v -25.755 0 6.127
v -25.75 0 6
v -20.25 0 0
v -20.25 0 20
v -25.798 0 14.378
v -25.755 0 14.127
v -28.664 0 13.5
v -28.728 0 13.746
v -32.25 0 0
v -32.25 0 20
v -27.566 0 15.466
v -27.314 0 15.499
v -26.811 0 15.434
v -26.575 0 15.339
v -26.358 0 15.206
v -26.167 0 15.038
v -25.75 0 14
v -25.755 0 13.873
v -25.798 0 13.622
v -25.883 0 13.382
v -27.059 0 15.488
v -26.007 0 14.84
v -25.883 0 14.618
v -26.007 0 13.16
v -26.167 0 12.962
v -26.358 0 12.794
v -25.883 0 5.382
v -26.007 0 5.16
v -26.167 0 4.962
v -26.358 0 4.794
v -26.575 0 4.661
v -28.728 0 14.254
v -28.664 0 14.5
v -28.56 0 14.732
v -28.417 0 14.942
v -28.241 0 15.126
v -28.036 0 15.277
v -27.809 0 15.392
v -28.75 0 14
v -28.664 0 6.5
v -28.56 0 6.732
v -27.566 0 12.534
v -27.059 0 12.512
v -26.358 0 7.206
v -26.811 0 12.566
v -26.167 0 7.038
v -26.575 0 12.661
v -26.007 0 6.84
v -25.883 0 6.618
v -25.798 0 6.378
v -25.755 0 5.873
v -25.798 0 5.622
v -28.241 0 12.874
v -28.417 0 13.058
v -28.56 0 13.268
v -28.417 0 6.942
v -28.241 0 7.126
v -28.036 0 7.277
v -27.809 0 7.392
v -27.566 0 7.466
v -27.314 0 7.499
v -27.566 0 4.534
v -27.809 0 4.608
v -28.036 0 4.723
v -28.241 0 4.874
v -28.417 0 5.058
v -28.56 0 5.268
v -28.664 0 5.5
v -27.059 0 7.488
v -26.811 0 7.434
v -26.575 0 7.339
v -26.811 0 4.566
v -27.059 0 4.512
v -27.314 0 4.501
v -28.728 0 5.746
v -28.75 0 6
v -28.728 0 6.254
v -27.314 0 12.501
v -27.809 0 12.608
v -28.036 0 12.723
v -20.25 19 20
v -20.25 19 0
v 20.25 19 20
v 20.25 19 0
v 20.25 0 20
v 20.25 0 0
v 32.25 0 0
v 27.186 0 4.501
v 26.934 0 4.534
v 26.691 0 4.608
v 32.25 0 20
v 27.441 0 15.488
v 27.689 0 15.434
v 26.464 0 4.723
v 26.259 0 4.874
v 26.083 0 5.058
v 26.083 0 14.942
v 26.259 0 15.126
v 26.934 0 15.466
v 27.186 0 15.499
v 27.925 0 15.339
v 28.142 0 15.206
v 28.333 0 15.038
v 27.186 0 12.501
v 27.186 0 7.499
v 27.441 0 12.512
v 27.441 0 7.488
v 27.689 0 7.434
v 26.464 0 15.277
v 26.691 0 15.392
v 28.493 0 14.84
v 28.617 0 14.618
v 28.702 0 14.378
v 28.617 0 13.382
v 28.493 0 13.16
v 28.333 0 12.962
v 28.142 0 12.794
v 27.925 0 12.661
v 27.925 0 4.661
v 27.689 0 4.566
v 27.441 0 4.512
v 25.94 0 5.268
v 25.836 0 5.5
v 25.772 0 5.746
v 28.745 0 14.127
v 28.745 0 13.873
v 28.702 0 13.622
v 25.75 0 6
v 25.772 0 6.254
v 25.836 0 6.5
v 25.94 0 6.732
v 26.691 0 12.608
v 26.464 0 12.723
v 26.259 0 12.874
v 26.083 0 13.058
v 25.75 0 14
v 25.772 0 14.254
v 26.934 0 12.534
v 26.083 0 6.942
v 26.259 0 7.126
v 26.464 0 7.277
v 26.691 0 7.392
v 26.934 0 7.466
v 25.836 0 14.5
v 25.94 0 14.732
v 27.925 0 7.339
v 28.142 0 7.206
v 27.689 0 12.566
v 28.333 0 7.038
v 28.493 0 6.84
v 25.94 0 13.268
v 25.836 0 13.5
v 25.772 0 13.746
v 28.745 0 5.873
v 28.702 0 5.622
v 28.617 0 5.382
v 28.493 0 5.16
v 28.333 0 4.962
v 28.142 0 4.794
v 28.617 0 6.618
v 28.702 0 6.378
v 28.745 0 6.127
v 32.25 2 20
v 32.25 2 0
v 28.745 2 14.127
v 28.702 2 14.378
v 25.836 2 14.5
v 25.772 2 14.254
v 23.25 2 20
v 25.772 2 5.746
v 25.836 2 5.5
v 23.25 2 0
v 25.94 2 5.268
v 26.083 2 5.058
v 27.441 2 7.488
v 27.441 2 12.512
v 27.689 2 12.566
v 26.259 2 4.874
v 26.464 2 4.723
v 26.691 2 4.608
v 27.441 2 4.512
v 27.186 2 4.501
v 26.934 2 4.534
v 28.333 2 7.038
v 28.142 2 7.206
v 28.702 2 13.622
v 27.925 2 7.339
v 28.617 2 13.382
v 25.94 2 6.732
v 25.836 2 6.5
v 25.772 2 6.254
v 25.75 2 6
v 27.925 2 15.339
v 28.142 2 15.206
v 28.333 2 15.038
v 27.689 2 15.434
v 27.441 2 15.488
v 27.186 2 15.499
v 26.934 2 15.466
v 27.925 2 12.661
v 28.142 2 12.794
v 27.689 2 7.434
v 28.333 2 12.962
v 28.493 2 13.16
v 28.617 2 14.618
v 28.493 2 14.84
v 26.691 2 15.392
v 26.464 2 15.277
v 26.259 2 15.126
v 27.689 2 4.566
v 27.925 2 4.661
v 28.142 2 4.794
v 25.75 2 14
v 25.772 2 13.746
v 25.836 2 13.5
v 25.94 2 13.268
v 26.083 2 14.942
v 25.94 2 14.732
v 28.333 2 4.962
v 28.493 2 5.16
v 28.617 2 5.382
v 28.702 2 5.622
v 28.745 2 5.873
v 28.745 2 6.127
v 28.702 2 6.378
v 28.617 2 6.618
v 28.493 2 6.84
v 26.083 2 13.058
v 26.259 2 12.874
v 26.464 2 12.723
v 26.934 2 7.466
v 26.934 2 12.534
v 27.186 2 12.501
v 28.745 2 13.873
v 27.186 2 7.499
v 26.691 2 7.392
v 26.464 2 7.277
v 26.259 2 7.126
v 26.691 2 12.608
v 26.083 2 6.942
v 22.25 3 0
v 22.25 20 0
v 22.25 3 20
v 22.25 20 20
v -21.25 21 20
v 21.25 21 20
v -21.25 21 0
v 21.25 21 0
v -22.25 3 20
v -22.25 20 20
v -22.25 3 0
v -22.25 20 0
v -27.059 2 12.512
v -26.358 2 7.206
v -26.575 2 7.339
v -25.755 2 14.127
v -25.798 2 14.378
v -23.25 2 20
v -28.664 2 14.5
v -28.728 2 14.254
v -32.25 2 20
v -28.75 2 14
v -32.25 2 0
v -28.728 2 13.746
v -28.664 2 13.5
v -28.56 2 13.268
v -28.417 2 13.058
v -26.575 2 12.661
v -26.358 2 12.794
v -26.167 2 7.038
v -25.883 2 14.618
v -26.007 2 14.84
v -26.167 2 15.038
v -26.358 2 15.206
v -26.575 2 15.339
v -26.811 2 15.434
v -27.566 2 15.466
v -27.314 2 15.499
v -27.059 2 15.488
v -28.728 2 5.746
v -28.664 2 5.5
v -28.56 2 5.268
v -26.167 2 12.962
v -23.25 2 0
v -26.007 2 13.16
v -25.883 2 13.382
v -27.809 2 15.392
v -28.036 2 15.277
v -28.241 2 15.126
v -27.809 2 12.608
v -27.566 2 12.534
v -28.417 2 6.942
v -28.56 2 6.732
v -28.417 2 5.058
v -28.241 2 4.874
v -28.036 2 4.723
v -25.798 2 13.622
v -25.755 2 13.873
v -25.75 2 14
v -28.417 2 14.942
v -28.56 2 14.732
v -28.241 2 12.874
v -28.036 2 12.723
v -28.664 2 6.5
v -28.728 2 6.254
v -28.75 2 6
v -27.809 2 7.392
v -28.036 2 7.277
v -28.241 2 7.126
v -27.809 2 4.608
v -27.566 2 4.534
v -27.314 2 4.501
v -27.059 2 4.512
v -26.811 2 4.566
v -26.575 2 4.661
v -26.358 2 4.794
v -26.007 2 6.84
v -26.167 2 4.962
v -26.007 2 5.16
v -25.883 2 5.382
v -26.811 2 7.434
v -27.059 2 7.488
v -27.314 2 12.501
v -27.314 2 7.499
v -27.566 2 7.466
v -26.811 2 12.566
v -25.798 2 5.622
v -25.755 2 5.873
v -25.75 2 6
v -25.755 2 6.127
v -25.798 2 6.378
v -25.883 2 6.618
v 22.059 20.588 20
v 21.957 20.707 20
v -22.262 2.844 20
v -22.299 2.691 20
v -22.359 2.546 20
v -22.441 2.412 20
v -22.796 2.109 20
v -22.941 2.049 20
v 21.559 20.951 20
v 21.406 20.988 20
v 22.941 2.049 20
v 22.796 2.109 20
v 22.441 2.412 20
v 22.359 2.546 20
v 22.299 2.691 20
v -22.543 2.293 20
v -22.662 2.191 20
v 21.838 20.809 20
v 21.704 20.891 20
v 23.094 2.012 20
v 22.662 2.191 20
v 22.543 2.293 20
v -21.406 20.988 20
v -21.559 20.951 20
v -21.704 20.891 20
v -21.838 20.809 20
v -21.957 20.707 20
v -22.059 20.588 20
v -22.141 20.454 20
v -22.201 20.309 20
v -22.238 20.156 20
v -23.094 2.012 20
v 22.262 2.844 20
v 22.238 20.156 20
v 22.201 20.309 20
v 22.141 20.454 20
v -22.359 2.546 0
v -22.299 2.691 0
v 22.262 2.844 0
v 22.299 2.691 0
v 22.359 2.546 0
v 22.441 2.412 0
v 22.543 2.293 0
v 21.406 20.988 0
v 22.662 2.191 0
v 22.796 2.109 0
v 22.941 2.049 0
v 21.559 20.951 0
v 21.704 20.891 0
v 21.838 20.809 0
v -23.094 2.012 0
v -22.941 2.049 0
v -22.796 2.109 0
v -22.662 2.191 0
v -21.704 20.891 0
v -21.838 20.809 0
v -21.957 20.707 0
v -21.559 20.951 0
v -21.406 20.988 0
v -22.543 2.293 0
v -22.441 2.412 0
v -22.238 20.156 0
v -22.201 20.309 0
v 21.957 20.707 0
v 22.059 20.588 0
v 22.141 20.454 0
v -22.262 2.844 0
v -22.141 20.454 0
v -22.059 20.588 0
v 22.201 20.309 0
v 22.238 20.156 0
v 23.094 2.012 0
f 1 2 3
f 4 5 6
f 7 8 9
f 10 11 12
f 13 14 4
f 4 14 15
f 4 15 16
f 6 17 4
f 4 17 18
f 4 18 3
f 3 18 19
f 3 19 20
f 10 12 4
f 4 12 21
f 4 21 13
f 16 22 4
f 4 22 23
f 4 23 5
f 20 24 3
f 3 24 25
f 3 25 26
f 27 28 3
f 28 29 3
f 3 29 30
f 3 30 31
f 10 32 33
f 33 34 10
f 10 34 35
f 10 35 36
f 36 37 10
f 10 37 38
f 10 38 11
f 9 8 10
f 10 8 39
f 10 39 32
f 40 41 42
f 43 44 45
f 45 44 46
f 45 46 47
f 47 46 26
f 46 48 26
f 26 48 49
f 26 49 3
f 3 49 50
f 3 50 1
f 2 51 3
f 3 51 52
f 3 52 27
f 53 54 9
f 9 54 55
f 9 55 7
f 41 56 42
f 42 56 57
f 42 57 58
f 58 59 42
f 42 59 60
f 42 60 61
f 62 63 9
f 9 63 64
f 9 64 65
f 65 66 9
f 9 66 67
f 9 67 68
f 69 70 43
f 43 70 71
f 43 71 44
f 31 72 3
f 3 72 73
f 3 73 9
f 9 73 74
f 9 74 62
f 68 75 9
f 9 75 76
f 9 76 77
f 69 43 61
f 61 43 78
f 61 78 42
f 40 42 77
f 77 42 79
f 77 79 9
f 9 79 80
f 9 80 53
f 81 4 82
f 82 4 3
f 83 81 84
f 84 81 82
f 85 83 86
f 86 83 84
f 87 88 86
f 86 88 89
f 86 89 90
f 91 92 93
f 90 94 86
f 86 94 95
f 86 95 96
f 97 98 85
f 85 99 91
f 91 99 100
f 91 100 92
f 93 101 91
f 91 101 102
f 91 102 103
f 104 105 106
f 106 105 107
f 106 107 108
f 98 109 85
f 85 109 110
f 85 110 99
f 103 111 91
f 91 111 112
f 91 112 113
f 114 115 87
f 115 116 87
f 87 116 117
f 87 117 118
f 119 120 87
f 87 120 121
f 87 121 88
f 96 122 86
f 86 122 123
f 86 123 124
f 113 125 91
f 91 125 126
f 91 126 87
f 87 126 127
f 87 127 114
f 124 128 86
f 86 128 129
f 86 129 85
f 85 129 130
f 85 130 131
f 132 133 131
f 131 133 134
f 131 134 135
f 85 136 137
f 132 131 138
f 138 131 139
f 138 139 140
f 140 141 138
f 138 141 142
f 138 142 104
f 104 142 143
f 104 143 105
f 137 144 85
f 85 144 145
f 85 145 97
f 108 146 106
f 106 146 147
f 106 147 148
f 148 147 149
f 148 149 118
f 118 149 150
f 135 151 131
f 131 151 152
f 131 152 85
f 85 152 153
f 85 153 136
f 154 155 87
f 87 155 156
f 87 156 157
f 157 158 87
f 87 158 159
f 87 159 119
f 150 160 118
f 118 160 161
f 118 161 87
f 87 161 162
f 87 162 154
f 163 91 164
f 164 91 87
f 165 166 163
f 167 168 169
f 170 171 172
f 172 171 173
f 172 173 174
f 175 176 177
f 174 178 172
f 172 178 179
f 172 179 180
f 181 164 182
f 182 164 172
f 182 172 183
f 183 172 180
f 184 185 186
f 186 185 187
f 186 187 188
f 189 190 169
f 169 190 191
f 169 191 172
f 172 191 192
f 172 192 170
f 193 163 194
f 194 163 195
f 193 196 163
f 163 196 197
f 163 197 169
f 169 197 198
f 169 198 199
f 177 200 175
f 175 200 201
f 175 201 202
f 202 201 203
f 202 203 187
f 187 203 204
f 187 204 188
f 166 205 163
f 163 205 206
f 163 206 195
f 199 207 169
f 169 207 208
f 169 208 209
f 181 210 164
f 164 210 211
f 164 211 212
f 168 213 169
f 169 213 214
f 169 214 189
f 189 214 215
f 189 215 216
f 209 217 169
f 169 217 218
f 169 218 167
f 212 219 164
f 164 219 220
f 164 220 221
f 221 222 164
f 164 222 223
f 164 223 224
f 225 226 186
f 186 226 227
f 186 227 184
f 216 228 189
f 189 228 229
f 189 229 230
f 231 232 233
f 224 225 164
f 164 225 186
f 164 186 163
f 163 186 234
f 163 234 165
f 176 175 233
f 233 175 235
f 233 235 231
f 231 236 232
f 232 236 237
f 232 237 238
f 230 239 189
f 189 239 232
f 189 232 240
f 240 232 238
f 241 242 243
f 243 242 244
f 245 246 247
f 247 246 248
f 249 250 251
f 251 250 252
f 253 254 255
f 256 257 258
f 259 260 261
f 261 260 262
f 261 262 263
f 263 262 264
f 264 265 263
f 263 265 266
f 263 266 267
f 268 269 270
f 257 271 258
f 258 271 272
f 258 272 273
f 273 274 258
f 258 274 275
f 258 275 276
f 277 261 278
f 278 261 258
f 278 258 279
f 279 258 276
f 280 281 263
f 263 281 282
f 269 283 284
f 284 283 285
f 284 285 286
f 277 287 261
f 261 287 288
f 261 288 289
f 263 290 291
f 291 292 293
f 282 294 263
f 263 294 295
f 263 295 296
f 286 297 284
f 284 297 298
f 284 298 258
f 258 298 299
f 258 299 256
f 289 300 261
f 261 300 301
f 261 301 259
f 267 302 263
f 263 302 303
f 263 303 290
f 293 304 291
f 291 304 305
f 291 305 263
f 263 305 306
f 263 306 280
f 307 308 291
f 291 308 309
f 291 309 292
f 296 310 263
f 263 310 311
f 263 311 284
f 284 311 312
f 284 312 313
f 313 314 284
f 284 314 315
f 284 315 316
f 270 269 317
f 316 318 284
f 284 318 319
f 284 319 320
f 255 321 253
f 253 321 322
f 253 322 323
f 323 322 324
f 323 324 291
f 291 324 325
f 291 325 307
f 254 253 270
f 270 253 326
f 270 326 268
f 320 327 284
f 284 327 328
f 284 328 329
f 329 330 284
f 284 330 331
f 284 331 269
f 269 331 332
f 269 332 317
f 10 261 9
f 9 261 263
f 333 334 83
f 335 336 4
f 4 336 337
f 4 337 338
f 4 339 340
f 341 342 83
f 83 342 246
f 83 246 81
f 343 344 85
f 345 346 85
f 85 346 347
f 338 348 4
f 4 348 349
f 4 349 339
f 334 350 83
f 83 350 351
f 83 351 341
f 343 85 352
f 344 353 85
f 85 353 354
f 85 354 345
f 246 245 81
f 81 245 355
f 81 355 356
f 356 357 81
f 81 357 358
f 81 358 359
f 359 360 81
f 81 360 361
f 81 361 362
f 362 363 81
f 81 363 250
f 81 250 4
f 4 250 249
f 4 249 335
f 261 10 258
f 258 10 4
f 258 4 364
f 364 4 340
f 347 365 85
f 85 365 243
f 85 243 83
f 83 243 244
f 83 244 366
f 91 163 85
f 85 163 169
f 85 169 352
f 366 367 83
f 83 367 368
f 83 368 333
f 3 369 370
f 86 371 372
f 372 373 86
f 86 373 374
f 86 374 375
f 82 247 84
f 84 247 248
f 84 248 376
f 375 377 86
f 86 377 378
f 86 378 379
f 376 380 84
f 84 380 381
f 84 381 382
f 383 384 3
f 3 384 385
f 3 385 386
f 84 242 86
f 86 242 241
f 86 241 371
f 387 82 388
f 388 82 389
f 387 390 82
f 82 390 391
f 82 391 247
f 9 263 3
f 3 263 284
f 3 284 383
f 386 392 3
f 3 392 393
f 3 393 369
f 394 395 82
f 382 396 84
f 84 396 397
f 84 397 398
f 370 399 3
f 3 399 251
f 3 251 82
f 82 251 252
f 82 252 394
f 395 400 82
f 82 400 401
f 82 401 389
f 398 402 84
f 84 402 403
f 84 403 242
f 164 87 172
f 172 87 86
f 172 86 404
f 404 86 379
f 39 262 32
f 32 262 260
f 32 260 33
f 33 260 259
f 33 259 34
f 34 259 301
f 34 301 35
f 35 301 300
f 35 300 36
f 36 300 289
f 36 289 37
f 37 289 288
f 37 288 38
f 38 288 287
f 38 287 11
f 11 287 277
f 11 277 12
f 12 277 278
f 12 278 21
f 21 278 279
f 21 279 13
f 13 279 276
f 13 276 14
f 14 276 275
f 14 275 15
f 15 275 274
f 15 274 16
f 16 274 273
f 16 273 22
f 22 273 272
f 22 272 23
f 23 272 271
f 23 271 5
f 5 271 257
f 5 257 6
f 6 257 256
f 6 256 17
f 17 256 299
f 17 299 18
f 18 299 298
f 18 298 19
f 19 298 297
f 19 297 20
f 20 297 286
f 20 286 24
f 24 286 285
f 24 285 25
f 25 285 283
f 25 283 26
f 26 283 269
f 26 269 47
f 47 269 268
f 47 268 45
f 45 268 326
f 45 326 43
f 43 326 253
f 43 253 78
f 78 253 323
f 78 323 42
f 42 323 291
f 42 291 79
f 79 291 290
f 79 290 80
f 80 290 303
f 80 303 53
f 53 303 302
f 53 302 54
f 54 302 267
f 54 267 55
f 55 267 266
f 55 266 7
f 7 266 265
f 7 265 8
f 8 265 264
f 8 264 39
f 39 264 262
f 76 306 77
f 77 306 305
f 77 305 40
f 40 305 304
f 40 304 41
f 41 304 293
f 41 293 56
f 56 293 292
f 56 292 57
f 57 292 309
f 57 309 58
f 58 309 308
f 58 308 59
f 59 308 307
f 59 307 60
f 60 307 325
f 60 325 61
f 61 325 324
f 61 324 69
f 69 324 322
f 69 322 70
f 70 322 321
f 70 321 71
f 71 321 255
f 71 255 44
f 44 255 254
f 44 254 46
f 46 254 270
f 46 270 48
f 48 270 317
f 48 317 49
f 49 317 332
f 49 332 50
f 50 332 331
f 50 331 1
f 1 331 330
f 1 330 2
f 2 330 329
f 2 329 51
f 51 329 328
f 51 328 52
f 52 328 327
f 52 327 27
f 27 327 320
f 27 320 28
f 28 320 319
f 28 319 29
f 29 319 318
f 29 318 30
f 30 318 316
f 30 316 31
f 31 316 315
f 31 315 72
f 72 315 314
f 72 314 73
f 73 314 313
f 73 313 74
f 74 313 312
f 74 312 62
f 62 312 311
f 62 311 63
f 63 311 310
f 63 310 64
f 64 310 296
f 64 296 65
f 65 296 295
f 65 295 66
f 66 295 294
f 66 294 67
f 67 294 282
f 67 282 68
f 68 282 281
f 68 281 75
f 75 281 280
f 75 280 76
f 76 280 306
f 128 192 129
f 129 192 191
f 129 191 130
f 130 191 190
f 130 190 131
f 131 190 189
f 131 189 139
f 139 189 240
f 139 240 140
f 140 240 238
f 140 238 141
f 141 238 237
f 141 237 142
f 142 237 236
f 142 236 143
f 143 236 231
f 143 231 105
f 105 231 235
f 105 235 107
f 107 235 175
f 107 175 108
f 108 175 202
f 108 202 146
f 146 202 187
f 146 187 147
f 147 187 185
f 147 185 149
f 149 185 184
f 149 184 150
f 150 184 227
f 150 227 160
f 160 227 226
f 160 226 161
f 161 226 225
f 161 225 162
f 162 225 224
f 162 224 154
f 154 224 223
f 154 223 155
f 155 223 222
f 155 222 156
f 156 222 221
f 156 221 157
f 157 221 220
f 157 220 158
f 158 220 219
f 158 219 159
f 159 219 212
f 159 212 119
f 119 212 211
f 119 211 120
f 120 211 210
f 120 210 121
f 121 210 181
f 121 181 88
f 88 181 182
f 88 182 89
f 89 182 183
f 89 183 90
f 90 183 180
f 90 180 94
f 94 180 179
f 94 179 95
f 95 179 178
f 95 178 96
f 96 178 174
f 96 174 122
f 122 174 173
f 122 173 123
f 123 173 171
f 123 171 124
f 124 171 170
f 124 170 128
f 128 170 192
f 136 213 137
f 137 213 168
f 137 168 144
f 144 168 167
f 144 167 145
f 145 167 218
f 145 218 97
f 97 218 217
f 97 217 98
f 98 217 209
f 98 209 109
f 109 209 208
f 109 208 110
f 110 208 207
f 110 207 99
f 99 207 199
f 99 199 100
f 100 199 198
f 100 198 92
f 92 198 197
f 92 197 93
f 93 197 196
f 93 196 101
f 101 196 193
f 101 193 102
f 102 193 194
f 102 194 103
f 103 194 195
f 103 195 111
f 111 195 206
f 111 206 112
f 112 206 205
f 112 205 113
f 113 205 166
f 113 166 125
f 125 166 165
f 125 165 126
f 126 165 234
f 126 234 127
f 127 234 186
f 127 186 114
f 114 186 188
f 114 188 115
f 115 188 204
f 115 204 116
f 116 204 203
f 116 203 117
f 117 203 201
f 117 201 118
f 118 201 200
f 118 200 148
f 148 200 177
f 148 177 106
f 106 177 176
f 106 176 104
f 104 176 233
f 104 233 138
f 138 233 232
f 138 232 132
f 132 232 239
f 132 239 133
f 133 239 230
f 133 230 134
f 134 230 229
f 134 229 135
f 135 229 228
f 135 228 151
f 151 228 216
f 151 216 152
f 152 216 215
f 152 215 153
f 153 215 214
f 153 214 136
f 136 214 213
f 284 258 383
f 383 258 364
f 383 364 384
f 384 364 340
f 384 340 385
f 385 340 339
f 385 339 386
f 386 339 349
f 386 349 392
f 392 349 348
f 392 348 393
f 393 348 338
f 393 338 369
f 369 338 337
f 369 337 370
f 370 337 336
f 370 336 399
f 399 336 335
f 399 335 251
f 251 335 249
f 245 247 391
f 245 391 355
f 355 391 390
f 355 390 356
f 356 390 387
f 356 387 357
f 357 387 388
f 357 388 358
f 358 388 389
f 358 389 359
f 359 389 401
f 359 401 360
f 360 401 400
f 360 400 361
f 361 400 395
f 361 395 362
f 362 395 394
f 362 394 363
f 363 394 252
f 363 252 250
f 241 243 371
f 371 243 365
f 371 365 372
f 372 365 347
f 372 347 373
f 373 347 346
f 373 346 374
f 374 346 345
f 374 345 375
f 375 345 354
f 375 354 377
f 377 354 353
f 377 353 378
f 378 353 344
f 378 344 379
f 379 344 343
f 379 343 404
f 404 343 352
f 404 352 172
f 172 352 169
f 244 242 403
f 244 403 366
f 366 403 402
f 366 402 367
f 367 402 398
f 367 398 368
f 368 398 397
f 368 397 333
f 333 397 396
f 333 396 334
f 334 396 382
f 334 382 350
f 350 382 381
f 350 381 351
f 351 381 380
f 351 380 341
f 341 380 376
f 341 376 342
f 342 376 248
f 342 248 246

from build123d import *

# Parameters (mm, degrees)
BOSS_EXTRUDE1_DEPTH = 20
SKETCH3_R           = 1.5
CUT_EXTRUDE1_DEPTH  = 3
FILLET1_R           = 1


with BuildPart() as part:
    # Sketch2 → Boss-Extrude1 (new body)
    with BuildSketch(Plane.XY):
        Polygon((-20.25, 19), (20.25, 19), (20.25, 0), (32.25, 0), (32.25, 2), (22.25, 2), (22.25, 21), (-22.25, 21), (-22.25, 2), (-32.25, 2), (-32.25, 0), (-20.25, 0), align=None)
    extrude(amount=BOSS_EXTRUDE1_DEPTH)

    # Sketch3 → Cut-Extrude1 (cut, through all)
    with BuildSketch(Plane(origin=(0, 2, 0), x_dir=(1, 0, 0), z_dir=(0, 1, 0))):
        with Locations((27.25, -6)):
            Circle(SKETCH3_R)
        with Locations((27.25, -14)):
            Circle(SKETCH3_R)
        with Locations((-27.25, -14)):
            Circle(SKETCH3_R)
        with Locations((-27.25, -6)):
            Circle(SKETCH3_R)
    extrude(amount=-CUT_EXTRUDE1_DEPTH, mode=Mode.SUBTRACT)

    # Fillet1
    fillet1_edges = [part.edges().sort_by_distance(p)[0] for p in [
        (-22.25, 2, 10),
        (-22.25, 21, 10),
        (22.25, 21, 10),
        (22.25, 2, 10),
    ]]
    fillet(fillet1_edges, radius=FILLET1_R)


solid = part.part
